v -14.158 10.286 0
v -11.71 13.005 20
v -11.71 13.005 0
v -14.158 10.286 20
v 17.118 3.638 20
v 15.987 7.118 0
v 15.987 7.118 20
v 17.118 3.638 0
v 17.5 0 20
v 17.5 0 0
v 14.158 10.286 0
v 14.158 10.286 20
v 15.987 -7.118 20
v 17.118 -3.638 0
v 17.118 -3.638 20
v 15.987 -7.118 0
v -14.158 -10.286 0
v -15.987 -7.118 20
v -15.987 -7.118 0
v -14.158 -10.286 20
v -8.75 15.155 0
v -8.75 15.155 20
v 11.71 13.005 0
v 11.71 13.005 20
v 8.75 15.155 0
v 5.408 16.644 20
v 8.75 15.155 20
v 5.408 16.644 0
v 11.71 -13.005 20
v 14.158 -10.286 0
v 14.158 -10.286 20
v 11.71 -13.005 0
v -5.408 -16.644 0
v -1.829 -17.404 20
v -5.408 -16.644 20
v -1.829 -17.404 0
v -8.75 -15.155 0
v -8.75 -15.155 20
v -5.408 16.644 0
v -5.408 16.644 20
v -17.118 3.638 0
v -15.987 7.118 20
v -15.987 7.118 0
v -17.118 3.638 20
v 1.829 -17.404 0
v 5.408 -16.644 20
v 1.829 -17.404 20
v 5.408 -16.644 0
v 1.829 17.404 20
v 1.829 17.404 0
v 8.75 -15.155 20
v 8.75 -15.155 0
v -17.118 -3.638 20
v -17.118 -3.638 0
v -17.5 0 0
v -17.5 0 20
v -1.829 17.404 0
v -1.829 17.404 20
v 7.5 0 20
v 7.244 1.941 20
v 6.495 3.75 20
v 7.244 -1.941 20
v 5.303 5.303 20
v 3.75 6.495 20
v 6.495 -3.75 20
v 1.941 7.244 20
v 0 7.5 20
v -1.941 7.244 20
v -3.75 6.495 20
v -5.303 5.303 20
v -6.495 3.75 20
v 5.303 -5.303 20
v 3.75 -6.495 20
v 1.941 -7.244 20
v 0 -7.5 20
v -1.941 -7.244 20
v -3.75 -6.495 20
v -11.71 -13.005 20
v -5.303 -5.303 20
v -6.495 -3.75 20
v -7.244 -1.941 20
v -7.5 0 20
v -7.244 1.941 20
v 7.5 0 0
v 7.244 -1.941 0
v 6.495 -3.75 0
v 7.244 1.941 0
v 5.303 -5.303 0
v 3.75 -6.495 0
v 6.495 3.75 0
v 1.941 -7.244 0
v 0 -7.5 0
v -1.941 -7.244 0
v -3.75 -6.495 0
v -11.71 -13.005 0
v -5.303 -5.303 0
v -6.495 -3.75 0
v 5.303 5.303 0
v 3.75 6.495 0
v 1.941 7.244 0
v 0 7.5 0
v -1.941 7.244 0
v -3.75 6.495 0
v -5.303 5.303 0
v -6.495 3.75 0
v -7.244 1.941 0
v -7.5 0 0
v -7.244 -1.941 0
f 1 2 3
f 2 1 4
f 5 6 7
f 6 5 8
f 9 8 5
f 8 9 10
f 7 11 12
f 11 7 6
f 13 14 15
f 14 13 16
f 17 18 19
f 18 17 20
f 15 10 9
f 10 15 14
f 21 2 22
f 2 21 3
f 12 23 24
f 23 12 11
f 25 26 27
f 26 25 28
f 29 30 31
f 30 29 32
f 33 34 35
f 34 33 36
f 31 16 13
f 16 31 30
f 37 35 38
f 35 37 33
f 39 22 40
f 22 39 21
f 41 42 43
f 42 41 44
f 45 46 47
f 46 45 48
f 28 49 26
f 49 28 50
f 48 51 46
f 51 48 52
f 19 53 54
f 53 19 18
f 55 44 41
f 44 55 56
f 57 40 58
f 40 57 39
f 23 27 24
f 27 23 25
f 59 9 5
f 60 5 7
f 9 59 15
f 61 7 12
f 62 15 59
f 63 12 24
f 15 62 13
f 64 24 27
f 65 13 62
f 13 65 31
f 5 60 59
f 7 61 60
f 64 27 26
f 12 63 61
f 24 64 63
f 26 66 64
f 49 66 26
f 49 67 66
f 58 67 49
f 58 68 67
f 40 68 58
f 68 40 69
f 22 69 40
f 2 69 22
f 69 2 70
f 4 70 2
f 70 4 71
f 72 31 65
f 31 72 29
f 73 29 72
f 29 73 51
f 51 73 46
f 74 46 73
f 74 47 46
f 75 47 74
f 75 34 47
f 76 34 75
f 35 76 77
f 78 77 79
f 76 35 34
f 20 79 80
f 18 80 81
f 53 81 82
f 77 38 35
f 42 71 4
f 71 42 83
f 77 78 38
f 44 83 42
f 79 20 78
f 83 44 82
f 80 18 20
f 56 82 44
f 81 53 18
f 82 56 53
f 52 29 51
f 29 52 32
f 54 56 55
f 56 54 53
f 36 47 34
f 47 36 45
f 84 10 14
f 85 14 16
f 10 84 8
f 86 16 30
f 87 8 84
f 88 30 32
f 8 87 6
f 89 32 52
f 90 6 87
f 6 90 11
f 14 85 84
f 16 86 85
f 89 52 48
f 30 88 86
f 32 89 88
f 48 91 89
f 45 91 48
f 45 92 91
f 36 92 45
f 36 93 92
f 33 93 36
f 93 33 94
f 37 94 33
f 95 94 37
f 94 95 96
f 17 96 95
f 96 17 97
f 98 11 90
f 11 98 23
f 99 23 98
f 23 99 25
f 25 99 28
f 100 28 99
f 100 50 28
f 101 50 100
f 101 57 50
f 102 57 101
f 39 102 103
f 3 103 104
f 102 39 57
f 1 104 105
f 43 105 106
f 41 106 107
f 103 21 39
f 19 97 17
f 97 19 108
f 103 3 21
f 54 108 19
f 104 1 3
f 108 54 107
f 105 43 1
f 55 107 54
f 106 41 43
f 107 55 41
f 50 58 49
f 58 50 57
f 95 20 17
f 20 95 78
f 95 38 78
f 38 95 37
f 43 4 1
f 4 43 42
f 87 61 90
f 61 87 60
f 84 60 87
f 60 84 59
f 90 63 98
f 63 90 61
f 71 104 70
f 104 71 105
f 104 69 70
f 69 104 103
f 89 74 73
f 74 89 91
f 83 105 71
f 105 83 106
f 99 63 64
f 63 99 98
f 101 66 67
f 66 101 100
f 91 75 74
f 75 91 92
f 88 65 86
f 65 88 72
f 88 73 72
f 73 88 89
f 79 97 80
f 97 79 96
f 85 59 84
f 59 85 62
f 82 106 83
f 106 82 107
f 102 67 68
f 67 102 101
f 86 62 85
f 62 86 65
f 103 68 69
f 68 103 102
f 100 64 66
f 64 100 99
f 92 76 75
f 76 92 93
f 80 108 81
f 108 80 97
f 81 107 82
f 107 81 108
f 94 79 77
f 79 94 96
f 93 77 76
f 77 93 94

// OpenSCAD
// Parameters
outer_diameter = 35;  // Uniform outer diameter to remove tapering
height = 20;  // Height of the cylinder
inner_diameter = 15;  // Diameter of the hollow section

// Module to create the cylindrical hollow object
module cylindrical_hollow_cylinder() {
    difference() {
        // Create a cylindrical shape with no tapering
        cylinder(h=height, d=outer_diameter, center=false);
        
        // Create the inner hollow section
        translate([0, 0, -1]) // Slightly lower to ensure proper subtraction
        cylinder(h=height+2, d=inner_diameter, center=false);
    }
}

// Call the module to render the object
cylindrical_hollow_cylinder();
